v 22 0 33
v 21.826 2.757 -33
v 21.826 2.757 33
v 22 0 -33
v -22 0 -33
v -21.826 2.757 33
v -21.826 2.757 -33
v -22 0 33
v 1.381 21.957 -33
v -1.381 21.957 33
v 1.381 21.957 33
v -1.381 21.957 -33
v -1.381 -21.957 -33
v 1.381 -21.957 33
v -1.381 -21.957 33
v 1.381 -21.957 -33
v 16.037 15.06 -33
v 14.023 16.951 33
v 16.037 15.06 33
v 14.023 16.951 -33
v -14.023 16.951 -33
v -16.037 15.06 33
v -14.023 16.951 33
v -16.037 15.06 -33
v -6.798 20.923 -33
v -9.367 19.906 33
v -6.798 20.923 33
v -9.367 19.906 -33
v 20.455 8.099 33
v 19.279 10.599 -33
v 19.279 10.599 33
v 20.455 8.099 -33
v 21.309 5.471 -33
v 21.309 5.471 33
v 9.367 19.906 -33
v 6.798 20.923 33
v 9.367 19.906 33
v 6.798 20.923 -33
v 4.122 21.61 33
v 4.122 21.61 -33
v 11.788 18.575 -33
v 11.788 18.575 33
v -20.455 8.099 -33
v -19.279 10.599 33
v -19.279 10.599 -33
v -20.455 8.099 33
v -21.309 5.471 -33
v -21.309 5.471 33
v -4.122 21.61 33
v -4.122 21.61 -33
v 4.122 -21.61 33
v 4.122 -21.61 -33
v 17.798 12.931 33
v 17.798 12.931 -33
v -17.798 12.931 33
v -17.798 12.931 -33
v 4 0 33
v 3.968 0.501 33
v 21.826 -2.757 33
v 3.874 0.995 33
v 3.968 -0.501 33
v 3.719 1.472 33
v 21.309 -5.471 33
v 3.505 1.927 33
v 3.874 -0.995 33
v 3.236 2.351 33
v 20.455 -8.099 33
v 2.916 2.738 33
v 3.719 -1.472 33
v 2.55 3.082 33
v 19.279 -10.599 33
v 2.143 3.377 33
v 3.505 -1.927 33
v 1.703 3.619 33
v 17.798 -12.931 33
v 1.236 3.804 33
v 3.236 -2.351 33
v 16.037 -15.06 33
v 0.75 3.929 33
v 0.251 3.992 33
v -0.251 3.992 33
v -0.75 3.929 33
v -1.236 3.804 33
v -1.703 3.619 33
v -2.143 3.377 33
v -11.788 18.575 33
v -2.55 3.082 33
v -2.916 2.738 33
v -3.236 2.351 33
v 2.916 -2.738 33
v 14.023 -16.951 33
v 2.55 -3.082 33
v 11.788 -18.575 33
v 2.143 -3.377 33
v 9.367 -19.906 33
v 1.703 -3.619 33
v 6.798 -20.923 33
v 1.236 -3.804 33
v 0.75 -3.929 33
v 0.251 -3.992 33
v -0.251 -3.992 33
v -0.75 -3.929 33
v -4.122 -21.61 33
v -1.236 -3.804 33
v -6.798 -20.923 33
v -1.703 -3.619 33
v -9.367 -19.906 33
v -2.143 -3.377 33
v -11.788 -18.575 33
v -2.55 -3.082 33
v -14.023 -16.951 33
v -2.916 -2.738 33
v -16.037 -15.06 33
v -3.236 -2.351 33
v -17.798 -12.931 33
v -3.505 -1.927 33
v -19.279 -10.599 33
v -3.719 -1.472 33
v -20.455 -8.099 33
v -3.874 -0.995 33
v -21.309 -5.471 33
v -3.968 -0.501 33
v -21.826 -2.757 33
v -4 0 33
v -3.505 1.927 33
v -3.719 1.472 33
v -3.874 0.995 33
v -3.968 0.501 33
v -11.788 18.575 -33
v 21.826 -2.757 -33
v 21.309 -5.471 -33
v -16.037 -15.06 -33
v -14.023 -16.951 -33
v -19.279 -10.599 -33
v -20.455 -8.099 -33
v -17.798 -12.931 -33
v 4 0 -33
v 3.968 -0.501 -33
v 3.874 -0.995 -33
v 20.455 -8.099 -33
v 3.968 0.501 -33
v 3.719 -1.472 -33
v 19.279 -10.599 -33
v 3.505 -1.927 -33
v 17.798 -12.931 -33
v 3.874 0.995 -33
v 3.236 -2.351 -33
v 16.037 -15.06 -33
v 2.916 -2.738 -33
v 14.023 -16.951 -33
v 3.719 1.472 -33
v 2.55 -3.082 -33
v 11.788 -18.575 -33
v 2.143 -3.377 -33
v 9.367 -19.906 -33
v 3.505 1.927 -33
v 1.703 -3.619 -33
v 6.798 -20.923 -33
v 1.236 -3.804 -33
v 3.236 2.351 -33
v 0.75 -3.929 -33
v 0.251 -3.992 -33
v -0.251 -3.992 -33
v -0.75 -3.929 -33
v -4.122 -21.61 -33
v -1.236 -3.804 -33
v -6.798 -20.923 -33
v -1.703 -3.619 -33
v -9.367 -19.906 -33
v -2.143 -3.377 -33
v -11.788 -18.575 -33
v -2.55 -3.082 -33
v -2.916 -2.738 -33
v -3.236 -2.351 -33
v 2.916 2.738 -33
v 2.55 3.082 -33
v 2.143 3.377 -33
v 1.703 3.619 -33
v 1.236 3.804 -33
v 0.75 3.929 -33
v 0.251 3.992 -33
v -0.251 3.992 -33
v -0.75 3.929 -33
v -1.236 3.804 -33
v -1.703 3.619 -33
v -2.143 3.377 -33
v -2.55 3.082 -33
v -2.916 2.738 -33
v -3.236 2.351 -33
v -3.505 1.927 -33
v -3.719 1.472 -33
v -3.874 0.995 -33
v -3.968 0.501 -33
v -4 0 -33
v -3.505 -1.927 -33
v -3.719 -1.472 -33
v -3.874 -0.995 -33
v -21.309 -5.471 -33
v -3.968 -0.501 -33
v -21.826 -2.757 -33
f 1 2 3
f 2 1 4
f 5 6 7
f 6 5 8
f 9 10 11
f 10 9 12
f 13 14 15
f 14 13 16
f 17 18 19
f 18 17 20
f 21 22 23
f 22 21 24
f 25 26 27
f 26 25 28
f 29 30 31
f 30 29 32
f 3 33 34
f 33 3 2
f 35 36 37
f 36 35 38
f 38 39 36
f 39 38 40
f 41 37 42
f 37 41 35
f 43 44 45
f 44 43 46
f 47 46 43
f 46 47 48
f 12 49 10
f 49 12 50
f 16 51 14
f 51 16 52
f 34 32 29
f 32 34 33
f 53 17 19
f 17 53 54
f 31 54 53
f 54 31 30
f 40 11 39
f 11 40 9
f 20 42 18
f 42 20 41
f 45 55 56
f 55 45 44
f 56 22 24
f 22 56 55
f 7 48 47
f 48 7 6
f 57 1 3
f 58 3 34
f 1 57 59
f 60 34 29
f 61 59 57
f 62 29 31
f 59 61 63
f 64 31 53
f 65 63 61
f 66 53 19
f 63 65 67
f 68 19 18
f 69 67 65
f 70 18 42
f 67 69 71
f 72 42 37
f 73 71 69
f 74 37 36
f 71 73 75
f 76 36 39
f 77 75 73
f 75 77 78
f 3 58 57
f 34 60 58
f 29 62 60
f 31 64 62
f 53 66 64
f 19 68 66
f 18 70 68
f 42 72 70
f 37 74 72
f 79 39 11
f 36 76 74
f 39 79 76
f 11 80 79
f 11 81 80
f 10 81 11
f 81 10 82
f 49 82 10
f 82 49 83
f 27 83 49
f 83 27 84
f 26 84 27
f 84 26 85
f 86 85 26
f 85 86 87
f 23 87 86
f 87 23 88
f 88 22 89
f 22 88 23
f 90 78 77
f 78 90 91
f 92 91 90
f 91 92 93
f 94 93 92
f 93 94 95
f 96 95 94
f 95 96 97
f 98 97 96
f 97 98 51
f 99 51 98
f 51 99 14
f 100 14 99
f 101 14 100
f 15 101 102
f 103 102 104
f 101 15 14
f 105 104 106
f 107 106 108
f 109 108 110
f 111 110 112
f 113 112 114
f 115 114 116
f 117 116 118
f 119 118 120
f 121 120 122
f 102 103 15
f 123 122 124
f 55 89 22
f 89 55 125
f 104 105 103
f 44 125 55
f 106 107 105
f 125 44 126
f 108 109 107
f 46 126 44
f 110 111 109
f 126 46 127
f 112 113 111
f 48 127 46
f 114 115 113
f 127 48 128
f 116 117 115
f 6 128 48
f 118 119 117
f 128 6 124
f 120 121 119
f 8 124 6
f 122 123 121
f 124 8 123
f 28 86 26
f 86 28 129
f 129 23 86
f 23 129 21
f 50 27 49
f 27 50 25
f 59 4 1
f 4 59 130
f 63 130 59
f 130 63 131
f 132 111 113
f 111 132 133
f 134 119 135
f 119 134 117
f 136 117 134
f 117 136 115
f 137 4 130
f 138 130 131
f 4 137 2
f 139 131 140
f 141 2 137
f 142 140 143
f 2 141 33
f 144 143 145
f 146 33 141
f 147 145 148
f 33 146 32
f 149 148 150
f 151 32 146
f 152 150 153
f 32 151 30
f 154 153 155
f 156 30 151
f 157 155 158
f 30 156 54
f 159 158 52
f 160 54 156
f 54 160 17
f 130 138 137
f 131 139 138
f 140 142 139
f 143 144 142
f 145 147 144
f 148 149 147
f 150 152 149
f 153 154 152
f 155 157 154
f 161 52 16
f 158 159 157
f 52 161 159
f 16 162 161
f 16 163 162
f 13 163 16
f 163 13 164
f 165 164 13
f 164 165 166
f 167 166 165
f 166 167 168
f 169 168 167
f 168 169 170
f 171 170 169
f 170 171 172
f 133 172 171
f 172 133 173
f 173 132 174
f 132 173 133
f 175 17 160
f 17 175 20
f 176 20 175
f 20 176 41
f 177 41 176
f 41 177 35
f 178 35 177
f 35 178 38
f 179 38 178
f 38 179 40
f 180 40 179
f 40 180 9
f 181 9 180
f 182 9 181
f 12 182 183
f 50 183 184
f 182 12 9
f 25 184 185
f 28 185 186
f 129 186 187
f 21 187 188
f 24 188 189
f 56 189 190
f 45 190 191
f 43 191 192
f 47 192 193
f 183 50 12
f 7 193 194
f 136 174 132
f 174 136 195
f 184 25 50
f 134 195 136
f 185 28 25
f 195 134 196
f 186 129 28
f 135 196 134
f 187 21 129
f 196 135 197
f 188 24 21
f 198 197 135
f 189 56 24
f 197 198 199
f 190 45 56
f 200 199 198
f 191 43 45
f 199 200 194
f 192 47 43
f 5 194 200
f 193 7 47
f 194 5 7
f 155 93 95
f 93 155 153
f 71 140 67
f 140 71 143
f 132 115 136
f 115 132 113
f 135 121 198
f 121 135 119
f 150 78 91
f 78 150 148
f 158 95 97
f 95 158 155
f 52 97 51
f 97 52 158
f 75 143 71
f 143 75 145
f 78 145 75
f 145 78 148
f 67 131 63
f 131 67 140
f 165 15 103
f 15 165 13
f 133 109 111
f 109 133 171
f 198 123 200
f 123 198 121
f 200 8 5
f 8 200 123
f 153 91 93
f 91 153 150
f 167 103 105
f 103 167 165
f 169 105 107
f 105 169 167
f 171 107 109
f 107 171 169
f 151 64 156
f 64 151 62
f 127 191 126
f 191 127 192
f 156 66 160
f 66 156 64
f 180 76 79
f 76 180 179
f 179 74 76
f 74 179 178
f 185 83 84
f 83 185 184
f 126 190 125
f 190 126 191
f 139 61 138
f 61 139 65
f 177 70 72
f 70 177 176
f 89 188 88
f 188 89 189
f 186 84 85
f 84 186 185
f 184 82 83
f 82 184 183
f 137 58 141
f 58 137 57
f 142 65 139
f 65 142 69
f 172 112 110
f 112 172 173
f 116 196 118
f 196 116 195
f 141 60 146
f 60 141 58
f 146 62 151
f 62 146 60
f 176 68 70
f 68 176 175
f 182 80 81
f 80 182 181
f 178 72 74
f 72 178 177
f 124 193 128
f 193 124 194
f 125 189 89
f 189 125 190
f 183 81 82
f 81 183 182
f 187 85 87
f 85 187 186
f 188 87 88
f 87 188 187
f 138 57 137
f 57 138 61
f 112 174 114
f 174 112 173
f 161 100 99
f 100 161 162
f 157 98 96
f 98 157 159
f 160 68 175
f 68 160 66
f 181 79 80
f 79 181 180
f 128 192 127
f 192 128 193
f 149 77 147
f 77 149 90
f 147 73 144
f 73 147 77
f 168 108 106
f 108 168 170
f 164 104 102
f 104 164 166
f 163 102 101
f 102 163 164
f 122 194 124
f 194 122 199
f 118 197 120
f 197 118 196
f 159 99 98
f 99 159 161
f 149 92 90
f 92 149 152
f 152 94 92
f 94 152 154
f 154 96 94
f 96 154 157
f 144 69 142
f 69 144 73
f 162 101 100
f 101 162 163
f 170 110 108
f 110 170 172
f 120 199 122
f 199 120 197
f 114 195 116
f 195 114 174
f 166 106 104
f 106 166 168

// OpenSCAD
$fn = 50;


difference() {
	union() {
		translate(v = [0, 0, -33.0000000000]) {
			cylinder(h = 66, r = 22.0000000000);
		}
	}
	union() {
		translate(v = [0, 0, -100.0000000000]) {
			cylinder(h = 200, r = 4);
		}
	}
}
